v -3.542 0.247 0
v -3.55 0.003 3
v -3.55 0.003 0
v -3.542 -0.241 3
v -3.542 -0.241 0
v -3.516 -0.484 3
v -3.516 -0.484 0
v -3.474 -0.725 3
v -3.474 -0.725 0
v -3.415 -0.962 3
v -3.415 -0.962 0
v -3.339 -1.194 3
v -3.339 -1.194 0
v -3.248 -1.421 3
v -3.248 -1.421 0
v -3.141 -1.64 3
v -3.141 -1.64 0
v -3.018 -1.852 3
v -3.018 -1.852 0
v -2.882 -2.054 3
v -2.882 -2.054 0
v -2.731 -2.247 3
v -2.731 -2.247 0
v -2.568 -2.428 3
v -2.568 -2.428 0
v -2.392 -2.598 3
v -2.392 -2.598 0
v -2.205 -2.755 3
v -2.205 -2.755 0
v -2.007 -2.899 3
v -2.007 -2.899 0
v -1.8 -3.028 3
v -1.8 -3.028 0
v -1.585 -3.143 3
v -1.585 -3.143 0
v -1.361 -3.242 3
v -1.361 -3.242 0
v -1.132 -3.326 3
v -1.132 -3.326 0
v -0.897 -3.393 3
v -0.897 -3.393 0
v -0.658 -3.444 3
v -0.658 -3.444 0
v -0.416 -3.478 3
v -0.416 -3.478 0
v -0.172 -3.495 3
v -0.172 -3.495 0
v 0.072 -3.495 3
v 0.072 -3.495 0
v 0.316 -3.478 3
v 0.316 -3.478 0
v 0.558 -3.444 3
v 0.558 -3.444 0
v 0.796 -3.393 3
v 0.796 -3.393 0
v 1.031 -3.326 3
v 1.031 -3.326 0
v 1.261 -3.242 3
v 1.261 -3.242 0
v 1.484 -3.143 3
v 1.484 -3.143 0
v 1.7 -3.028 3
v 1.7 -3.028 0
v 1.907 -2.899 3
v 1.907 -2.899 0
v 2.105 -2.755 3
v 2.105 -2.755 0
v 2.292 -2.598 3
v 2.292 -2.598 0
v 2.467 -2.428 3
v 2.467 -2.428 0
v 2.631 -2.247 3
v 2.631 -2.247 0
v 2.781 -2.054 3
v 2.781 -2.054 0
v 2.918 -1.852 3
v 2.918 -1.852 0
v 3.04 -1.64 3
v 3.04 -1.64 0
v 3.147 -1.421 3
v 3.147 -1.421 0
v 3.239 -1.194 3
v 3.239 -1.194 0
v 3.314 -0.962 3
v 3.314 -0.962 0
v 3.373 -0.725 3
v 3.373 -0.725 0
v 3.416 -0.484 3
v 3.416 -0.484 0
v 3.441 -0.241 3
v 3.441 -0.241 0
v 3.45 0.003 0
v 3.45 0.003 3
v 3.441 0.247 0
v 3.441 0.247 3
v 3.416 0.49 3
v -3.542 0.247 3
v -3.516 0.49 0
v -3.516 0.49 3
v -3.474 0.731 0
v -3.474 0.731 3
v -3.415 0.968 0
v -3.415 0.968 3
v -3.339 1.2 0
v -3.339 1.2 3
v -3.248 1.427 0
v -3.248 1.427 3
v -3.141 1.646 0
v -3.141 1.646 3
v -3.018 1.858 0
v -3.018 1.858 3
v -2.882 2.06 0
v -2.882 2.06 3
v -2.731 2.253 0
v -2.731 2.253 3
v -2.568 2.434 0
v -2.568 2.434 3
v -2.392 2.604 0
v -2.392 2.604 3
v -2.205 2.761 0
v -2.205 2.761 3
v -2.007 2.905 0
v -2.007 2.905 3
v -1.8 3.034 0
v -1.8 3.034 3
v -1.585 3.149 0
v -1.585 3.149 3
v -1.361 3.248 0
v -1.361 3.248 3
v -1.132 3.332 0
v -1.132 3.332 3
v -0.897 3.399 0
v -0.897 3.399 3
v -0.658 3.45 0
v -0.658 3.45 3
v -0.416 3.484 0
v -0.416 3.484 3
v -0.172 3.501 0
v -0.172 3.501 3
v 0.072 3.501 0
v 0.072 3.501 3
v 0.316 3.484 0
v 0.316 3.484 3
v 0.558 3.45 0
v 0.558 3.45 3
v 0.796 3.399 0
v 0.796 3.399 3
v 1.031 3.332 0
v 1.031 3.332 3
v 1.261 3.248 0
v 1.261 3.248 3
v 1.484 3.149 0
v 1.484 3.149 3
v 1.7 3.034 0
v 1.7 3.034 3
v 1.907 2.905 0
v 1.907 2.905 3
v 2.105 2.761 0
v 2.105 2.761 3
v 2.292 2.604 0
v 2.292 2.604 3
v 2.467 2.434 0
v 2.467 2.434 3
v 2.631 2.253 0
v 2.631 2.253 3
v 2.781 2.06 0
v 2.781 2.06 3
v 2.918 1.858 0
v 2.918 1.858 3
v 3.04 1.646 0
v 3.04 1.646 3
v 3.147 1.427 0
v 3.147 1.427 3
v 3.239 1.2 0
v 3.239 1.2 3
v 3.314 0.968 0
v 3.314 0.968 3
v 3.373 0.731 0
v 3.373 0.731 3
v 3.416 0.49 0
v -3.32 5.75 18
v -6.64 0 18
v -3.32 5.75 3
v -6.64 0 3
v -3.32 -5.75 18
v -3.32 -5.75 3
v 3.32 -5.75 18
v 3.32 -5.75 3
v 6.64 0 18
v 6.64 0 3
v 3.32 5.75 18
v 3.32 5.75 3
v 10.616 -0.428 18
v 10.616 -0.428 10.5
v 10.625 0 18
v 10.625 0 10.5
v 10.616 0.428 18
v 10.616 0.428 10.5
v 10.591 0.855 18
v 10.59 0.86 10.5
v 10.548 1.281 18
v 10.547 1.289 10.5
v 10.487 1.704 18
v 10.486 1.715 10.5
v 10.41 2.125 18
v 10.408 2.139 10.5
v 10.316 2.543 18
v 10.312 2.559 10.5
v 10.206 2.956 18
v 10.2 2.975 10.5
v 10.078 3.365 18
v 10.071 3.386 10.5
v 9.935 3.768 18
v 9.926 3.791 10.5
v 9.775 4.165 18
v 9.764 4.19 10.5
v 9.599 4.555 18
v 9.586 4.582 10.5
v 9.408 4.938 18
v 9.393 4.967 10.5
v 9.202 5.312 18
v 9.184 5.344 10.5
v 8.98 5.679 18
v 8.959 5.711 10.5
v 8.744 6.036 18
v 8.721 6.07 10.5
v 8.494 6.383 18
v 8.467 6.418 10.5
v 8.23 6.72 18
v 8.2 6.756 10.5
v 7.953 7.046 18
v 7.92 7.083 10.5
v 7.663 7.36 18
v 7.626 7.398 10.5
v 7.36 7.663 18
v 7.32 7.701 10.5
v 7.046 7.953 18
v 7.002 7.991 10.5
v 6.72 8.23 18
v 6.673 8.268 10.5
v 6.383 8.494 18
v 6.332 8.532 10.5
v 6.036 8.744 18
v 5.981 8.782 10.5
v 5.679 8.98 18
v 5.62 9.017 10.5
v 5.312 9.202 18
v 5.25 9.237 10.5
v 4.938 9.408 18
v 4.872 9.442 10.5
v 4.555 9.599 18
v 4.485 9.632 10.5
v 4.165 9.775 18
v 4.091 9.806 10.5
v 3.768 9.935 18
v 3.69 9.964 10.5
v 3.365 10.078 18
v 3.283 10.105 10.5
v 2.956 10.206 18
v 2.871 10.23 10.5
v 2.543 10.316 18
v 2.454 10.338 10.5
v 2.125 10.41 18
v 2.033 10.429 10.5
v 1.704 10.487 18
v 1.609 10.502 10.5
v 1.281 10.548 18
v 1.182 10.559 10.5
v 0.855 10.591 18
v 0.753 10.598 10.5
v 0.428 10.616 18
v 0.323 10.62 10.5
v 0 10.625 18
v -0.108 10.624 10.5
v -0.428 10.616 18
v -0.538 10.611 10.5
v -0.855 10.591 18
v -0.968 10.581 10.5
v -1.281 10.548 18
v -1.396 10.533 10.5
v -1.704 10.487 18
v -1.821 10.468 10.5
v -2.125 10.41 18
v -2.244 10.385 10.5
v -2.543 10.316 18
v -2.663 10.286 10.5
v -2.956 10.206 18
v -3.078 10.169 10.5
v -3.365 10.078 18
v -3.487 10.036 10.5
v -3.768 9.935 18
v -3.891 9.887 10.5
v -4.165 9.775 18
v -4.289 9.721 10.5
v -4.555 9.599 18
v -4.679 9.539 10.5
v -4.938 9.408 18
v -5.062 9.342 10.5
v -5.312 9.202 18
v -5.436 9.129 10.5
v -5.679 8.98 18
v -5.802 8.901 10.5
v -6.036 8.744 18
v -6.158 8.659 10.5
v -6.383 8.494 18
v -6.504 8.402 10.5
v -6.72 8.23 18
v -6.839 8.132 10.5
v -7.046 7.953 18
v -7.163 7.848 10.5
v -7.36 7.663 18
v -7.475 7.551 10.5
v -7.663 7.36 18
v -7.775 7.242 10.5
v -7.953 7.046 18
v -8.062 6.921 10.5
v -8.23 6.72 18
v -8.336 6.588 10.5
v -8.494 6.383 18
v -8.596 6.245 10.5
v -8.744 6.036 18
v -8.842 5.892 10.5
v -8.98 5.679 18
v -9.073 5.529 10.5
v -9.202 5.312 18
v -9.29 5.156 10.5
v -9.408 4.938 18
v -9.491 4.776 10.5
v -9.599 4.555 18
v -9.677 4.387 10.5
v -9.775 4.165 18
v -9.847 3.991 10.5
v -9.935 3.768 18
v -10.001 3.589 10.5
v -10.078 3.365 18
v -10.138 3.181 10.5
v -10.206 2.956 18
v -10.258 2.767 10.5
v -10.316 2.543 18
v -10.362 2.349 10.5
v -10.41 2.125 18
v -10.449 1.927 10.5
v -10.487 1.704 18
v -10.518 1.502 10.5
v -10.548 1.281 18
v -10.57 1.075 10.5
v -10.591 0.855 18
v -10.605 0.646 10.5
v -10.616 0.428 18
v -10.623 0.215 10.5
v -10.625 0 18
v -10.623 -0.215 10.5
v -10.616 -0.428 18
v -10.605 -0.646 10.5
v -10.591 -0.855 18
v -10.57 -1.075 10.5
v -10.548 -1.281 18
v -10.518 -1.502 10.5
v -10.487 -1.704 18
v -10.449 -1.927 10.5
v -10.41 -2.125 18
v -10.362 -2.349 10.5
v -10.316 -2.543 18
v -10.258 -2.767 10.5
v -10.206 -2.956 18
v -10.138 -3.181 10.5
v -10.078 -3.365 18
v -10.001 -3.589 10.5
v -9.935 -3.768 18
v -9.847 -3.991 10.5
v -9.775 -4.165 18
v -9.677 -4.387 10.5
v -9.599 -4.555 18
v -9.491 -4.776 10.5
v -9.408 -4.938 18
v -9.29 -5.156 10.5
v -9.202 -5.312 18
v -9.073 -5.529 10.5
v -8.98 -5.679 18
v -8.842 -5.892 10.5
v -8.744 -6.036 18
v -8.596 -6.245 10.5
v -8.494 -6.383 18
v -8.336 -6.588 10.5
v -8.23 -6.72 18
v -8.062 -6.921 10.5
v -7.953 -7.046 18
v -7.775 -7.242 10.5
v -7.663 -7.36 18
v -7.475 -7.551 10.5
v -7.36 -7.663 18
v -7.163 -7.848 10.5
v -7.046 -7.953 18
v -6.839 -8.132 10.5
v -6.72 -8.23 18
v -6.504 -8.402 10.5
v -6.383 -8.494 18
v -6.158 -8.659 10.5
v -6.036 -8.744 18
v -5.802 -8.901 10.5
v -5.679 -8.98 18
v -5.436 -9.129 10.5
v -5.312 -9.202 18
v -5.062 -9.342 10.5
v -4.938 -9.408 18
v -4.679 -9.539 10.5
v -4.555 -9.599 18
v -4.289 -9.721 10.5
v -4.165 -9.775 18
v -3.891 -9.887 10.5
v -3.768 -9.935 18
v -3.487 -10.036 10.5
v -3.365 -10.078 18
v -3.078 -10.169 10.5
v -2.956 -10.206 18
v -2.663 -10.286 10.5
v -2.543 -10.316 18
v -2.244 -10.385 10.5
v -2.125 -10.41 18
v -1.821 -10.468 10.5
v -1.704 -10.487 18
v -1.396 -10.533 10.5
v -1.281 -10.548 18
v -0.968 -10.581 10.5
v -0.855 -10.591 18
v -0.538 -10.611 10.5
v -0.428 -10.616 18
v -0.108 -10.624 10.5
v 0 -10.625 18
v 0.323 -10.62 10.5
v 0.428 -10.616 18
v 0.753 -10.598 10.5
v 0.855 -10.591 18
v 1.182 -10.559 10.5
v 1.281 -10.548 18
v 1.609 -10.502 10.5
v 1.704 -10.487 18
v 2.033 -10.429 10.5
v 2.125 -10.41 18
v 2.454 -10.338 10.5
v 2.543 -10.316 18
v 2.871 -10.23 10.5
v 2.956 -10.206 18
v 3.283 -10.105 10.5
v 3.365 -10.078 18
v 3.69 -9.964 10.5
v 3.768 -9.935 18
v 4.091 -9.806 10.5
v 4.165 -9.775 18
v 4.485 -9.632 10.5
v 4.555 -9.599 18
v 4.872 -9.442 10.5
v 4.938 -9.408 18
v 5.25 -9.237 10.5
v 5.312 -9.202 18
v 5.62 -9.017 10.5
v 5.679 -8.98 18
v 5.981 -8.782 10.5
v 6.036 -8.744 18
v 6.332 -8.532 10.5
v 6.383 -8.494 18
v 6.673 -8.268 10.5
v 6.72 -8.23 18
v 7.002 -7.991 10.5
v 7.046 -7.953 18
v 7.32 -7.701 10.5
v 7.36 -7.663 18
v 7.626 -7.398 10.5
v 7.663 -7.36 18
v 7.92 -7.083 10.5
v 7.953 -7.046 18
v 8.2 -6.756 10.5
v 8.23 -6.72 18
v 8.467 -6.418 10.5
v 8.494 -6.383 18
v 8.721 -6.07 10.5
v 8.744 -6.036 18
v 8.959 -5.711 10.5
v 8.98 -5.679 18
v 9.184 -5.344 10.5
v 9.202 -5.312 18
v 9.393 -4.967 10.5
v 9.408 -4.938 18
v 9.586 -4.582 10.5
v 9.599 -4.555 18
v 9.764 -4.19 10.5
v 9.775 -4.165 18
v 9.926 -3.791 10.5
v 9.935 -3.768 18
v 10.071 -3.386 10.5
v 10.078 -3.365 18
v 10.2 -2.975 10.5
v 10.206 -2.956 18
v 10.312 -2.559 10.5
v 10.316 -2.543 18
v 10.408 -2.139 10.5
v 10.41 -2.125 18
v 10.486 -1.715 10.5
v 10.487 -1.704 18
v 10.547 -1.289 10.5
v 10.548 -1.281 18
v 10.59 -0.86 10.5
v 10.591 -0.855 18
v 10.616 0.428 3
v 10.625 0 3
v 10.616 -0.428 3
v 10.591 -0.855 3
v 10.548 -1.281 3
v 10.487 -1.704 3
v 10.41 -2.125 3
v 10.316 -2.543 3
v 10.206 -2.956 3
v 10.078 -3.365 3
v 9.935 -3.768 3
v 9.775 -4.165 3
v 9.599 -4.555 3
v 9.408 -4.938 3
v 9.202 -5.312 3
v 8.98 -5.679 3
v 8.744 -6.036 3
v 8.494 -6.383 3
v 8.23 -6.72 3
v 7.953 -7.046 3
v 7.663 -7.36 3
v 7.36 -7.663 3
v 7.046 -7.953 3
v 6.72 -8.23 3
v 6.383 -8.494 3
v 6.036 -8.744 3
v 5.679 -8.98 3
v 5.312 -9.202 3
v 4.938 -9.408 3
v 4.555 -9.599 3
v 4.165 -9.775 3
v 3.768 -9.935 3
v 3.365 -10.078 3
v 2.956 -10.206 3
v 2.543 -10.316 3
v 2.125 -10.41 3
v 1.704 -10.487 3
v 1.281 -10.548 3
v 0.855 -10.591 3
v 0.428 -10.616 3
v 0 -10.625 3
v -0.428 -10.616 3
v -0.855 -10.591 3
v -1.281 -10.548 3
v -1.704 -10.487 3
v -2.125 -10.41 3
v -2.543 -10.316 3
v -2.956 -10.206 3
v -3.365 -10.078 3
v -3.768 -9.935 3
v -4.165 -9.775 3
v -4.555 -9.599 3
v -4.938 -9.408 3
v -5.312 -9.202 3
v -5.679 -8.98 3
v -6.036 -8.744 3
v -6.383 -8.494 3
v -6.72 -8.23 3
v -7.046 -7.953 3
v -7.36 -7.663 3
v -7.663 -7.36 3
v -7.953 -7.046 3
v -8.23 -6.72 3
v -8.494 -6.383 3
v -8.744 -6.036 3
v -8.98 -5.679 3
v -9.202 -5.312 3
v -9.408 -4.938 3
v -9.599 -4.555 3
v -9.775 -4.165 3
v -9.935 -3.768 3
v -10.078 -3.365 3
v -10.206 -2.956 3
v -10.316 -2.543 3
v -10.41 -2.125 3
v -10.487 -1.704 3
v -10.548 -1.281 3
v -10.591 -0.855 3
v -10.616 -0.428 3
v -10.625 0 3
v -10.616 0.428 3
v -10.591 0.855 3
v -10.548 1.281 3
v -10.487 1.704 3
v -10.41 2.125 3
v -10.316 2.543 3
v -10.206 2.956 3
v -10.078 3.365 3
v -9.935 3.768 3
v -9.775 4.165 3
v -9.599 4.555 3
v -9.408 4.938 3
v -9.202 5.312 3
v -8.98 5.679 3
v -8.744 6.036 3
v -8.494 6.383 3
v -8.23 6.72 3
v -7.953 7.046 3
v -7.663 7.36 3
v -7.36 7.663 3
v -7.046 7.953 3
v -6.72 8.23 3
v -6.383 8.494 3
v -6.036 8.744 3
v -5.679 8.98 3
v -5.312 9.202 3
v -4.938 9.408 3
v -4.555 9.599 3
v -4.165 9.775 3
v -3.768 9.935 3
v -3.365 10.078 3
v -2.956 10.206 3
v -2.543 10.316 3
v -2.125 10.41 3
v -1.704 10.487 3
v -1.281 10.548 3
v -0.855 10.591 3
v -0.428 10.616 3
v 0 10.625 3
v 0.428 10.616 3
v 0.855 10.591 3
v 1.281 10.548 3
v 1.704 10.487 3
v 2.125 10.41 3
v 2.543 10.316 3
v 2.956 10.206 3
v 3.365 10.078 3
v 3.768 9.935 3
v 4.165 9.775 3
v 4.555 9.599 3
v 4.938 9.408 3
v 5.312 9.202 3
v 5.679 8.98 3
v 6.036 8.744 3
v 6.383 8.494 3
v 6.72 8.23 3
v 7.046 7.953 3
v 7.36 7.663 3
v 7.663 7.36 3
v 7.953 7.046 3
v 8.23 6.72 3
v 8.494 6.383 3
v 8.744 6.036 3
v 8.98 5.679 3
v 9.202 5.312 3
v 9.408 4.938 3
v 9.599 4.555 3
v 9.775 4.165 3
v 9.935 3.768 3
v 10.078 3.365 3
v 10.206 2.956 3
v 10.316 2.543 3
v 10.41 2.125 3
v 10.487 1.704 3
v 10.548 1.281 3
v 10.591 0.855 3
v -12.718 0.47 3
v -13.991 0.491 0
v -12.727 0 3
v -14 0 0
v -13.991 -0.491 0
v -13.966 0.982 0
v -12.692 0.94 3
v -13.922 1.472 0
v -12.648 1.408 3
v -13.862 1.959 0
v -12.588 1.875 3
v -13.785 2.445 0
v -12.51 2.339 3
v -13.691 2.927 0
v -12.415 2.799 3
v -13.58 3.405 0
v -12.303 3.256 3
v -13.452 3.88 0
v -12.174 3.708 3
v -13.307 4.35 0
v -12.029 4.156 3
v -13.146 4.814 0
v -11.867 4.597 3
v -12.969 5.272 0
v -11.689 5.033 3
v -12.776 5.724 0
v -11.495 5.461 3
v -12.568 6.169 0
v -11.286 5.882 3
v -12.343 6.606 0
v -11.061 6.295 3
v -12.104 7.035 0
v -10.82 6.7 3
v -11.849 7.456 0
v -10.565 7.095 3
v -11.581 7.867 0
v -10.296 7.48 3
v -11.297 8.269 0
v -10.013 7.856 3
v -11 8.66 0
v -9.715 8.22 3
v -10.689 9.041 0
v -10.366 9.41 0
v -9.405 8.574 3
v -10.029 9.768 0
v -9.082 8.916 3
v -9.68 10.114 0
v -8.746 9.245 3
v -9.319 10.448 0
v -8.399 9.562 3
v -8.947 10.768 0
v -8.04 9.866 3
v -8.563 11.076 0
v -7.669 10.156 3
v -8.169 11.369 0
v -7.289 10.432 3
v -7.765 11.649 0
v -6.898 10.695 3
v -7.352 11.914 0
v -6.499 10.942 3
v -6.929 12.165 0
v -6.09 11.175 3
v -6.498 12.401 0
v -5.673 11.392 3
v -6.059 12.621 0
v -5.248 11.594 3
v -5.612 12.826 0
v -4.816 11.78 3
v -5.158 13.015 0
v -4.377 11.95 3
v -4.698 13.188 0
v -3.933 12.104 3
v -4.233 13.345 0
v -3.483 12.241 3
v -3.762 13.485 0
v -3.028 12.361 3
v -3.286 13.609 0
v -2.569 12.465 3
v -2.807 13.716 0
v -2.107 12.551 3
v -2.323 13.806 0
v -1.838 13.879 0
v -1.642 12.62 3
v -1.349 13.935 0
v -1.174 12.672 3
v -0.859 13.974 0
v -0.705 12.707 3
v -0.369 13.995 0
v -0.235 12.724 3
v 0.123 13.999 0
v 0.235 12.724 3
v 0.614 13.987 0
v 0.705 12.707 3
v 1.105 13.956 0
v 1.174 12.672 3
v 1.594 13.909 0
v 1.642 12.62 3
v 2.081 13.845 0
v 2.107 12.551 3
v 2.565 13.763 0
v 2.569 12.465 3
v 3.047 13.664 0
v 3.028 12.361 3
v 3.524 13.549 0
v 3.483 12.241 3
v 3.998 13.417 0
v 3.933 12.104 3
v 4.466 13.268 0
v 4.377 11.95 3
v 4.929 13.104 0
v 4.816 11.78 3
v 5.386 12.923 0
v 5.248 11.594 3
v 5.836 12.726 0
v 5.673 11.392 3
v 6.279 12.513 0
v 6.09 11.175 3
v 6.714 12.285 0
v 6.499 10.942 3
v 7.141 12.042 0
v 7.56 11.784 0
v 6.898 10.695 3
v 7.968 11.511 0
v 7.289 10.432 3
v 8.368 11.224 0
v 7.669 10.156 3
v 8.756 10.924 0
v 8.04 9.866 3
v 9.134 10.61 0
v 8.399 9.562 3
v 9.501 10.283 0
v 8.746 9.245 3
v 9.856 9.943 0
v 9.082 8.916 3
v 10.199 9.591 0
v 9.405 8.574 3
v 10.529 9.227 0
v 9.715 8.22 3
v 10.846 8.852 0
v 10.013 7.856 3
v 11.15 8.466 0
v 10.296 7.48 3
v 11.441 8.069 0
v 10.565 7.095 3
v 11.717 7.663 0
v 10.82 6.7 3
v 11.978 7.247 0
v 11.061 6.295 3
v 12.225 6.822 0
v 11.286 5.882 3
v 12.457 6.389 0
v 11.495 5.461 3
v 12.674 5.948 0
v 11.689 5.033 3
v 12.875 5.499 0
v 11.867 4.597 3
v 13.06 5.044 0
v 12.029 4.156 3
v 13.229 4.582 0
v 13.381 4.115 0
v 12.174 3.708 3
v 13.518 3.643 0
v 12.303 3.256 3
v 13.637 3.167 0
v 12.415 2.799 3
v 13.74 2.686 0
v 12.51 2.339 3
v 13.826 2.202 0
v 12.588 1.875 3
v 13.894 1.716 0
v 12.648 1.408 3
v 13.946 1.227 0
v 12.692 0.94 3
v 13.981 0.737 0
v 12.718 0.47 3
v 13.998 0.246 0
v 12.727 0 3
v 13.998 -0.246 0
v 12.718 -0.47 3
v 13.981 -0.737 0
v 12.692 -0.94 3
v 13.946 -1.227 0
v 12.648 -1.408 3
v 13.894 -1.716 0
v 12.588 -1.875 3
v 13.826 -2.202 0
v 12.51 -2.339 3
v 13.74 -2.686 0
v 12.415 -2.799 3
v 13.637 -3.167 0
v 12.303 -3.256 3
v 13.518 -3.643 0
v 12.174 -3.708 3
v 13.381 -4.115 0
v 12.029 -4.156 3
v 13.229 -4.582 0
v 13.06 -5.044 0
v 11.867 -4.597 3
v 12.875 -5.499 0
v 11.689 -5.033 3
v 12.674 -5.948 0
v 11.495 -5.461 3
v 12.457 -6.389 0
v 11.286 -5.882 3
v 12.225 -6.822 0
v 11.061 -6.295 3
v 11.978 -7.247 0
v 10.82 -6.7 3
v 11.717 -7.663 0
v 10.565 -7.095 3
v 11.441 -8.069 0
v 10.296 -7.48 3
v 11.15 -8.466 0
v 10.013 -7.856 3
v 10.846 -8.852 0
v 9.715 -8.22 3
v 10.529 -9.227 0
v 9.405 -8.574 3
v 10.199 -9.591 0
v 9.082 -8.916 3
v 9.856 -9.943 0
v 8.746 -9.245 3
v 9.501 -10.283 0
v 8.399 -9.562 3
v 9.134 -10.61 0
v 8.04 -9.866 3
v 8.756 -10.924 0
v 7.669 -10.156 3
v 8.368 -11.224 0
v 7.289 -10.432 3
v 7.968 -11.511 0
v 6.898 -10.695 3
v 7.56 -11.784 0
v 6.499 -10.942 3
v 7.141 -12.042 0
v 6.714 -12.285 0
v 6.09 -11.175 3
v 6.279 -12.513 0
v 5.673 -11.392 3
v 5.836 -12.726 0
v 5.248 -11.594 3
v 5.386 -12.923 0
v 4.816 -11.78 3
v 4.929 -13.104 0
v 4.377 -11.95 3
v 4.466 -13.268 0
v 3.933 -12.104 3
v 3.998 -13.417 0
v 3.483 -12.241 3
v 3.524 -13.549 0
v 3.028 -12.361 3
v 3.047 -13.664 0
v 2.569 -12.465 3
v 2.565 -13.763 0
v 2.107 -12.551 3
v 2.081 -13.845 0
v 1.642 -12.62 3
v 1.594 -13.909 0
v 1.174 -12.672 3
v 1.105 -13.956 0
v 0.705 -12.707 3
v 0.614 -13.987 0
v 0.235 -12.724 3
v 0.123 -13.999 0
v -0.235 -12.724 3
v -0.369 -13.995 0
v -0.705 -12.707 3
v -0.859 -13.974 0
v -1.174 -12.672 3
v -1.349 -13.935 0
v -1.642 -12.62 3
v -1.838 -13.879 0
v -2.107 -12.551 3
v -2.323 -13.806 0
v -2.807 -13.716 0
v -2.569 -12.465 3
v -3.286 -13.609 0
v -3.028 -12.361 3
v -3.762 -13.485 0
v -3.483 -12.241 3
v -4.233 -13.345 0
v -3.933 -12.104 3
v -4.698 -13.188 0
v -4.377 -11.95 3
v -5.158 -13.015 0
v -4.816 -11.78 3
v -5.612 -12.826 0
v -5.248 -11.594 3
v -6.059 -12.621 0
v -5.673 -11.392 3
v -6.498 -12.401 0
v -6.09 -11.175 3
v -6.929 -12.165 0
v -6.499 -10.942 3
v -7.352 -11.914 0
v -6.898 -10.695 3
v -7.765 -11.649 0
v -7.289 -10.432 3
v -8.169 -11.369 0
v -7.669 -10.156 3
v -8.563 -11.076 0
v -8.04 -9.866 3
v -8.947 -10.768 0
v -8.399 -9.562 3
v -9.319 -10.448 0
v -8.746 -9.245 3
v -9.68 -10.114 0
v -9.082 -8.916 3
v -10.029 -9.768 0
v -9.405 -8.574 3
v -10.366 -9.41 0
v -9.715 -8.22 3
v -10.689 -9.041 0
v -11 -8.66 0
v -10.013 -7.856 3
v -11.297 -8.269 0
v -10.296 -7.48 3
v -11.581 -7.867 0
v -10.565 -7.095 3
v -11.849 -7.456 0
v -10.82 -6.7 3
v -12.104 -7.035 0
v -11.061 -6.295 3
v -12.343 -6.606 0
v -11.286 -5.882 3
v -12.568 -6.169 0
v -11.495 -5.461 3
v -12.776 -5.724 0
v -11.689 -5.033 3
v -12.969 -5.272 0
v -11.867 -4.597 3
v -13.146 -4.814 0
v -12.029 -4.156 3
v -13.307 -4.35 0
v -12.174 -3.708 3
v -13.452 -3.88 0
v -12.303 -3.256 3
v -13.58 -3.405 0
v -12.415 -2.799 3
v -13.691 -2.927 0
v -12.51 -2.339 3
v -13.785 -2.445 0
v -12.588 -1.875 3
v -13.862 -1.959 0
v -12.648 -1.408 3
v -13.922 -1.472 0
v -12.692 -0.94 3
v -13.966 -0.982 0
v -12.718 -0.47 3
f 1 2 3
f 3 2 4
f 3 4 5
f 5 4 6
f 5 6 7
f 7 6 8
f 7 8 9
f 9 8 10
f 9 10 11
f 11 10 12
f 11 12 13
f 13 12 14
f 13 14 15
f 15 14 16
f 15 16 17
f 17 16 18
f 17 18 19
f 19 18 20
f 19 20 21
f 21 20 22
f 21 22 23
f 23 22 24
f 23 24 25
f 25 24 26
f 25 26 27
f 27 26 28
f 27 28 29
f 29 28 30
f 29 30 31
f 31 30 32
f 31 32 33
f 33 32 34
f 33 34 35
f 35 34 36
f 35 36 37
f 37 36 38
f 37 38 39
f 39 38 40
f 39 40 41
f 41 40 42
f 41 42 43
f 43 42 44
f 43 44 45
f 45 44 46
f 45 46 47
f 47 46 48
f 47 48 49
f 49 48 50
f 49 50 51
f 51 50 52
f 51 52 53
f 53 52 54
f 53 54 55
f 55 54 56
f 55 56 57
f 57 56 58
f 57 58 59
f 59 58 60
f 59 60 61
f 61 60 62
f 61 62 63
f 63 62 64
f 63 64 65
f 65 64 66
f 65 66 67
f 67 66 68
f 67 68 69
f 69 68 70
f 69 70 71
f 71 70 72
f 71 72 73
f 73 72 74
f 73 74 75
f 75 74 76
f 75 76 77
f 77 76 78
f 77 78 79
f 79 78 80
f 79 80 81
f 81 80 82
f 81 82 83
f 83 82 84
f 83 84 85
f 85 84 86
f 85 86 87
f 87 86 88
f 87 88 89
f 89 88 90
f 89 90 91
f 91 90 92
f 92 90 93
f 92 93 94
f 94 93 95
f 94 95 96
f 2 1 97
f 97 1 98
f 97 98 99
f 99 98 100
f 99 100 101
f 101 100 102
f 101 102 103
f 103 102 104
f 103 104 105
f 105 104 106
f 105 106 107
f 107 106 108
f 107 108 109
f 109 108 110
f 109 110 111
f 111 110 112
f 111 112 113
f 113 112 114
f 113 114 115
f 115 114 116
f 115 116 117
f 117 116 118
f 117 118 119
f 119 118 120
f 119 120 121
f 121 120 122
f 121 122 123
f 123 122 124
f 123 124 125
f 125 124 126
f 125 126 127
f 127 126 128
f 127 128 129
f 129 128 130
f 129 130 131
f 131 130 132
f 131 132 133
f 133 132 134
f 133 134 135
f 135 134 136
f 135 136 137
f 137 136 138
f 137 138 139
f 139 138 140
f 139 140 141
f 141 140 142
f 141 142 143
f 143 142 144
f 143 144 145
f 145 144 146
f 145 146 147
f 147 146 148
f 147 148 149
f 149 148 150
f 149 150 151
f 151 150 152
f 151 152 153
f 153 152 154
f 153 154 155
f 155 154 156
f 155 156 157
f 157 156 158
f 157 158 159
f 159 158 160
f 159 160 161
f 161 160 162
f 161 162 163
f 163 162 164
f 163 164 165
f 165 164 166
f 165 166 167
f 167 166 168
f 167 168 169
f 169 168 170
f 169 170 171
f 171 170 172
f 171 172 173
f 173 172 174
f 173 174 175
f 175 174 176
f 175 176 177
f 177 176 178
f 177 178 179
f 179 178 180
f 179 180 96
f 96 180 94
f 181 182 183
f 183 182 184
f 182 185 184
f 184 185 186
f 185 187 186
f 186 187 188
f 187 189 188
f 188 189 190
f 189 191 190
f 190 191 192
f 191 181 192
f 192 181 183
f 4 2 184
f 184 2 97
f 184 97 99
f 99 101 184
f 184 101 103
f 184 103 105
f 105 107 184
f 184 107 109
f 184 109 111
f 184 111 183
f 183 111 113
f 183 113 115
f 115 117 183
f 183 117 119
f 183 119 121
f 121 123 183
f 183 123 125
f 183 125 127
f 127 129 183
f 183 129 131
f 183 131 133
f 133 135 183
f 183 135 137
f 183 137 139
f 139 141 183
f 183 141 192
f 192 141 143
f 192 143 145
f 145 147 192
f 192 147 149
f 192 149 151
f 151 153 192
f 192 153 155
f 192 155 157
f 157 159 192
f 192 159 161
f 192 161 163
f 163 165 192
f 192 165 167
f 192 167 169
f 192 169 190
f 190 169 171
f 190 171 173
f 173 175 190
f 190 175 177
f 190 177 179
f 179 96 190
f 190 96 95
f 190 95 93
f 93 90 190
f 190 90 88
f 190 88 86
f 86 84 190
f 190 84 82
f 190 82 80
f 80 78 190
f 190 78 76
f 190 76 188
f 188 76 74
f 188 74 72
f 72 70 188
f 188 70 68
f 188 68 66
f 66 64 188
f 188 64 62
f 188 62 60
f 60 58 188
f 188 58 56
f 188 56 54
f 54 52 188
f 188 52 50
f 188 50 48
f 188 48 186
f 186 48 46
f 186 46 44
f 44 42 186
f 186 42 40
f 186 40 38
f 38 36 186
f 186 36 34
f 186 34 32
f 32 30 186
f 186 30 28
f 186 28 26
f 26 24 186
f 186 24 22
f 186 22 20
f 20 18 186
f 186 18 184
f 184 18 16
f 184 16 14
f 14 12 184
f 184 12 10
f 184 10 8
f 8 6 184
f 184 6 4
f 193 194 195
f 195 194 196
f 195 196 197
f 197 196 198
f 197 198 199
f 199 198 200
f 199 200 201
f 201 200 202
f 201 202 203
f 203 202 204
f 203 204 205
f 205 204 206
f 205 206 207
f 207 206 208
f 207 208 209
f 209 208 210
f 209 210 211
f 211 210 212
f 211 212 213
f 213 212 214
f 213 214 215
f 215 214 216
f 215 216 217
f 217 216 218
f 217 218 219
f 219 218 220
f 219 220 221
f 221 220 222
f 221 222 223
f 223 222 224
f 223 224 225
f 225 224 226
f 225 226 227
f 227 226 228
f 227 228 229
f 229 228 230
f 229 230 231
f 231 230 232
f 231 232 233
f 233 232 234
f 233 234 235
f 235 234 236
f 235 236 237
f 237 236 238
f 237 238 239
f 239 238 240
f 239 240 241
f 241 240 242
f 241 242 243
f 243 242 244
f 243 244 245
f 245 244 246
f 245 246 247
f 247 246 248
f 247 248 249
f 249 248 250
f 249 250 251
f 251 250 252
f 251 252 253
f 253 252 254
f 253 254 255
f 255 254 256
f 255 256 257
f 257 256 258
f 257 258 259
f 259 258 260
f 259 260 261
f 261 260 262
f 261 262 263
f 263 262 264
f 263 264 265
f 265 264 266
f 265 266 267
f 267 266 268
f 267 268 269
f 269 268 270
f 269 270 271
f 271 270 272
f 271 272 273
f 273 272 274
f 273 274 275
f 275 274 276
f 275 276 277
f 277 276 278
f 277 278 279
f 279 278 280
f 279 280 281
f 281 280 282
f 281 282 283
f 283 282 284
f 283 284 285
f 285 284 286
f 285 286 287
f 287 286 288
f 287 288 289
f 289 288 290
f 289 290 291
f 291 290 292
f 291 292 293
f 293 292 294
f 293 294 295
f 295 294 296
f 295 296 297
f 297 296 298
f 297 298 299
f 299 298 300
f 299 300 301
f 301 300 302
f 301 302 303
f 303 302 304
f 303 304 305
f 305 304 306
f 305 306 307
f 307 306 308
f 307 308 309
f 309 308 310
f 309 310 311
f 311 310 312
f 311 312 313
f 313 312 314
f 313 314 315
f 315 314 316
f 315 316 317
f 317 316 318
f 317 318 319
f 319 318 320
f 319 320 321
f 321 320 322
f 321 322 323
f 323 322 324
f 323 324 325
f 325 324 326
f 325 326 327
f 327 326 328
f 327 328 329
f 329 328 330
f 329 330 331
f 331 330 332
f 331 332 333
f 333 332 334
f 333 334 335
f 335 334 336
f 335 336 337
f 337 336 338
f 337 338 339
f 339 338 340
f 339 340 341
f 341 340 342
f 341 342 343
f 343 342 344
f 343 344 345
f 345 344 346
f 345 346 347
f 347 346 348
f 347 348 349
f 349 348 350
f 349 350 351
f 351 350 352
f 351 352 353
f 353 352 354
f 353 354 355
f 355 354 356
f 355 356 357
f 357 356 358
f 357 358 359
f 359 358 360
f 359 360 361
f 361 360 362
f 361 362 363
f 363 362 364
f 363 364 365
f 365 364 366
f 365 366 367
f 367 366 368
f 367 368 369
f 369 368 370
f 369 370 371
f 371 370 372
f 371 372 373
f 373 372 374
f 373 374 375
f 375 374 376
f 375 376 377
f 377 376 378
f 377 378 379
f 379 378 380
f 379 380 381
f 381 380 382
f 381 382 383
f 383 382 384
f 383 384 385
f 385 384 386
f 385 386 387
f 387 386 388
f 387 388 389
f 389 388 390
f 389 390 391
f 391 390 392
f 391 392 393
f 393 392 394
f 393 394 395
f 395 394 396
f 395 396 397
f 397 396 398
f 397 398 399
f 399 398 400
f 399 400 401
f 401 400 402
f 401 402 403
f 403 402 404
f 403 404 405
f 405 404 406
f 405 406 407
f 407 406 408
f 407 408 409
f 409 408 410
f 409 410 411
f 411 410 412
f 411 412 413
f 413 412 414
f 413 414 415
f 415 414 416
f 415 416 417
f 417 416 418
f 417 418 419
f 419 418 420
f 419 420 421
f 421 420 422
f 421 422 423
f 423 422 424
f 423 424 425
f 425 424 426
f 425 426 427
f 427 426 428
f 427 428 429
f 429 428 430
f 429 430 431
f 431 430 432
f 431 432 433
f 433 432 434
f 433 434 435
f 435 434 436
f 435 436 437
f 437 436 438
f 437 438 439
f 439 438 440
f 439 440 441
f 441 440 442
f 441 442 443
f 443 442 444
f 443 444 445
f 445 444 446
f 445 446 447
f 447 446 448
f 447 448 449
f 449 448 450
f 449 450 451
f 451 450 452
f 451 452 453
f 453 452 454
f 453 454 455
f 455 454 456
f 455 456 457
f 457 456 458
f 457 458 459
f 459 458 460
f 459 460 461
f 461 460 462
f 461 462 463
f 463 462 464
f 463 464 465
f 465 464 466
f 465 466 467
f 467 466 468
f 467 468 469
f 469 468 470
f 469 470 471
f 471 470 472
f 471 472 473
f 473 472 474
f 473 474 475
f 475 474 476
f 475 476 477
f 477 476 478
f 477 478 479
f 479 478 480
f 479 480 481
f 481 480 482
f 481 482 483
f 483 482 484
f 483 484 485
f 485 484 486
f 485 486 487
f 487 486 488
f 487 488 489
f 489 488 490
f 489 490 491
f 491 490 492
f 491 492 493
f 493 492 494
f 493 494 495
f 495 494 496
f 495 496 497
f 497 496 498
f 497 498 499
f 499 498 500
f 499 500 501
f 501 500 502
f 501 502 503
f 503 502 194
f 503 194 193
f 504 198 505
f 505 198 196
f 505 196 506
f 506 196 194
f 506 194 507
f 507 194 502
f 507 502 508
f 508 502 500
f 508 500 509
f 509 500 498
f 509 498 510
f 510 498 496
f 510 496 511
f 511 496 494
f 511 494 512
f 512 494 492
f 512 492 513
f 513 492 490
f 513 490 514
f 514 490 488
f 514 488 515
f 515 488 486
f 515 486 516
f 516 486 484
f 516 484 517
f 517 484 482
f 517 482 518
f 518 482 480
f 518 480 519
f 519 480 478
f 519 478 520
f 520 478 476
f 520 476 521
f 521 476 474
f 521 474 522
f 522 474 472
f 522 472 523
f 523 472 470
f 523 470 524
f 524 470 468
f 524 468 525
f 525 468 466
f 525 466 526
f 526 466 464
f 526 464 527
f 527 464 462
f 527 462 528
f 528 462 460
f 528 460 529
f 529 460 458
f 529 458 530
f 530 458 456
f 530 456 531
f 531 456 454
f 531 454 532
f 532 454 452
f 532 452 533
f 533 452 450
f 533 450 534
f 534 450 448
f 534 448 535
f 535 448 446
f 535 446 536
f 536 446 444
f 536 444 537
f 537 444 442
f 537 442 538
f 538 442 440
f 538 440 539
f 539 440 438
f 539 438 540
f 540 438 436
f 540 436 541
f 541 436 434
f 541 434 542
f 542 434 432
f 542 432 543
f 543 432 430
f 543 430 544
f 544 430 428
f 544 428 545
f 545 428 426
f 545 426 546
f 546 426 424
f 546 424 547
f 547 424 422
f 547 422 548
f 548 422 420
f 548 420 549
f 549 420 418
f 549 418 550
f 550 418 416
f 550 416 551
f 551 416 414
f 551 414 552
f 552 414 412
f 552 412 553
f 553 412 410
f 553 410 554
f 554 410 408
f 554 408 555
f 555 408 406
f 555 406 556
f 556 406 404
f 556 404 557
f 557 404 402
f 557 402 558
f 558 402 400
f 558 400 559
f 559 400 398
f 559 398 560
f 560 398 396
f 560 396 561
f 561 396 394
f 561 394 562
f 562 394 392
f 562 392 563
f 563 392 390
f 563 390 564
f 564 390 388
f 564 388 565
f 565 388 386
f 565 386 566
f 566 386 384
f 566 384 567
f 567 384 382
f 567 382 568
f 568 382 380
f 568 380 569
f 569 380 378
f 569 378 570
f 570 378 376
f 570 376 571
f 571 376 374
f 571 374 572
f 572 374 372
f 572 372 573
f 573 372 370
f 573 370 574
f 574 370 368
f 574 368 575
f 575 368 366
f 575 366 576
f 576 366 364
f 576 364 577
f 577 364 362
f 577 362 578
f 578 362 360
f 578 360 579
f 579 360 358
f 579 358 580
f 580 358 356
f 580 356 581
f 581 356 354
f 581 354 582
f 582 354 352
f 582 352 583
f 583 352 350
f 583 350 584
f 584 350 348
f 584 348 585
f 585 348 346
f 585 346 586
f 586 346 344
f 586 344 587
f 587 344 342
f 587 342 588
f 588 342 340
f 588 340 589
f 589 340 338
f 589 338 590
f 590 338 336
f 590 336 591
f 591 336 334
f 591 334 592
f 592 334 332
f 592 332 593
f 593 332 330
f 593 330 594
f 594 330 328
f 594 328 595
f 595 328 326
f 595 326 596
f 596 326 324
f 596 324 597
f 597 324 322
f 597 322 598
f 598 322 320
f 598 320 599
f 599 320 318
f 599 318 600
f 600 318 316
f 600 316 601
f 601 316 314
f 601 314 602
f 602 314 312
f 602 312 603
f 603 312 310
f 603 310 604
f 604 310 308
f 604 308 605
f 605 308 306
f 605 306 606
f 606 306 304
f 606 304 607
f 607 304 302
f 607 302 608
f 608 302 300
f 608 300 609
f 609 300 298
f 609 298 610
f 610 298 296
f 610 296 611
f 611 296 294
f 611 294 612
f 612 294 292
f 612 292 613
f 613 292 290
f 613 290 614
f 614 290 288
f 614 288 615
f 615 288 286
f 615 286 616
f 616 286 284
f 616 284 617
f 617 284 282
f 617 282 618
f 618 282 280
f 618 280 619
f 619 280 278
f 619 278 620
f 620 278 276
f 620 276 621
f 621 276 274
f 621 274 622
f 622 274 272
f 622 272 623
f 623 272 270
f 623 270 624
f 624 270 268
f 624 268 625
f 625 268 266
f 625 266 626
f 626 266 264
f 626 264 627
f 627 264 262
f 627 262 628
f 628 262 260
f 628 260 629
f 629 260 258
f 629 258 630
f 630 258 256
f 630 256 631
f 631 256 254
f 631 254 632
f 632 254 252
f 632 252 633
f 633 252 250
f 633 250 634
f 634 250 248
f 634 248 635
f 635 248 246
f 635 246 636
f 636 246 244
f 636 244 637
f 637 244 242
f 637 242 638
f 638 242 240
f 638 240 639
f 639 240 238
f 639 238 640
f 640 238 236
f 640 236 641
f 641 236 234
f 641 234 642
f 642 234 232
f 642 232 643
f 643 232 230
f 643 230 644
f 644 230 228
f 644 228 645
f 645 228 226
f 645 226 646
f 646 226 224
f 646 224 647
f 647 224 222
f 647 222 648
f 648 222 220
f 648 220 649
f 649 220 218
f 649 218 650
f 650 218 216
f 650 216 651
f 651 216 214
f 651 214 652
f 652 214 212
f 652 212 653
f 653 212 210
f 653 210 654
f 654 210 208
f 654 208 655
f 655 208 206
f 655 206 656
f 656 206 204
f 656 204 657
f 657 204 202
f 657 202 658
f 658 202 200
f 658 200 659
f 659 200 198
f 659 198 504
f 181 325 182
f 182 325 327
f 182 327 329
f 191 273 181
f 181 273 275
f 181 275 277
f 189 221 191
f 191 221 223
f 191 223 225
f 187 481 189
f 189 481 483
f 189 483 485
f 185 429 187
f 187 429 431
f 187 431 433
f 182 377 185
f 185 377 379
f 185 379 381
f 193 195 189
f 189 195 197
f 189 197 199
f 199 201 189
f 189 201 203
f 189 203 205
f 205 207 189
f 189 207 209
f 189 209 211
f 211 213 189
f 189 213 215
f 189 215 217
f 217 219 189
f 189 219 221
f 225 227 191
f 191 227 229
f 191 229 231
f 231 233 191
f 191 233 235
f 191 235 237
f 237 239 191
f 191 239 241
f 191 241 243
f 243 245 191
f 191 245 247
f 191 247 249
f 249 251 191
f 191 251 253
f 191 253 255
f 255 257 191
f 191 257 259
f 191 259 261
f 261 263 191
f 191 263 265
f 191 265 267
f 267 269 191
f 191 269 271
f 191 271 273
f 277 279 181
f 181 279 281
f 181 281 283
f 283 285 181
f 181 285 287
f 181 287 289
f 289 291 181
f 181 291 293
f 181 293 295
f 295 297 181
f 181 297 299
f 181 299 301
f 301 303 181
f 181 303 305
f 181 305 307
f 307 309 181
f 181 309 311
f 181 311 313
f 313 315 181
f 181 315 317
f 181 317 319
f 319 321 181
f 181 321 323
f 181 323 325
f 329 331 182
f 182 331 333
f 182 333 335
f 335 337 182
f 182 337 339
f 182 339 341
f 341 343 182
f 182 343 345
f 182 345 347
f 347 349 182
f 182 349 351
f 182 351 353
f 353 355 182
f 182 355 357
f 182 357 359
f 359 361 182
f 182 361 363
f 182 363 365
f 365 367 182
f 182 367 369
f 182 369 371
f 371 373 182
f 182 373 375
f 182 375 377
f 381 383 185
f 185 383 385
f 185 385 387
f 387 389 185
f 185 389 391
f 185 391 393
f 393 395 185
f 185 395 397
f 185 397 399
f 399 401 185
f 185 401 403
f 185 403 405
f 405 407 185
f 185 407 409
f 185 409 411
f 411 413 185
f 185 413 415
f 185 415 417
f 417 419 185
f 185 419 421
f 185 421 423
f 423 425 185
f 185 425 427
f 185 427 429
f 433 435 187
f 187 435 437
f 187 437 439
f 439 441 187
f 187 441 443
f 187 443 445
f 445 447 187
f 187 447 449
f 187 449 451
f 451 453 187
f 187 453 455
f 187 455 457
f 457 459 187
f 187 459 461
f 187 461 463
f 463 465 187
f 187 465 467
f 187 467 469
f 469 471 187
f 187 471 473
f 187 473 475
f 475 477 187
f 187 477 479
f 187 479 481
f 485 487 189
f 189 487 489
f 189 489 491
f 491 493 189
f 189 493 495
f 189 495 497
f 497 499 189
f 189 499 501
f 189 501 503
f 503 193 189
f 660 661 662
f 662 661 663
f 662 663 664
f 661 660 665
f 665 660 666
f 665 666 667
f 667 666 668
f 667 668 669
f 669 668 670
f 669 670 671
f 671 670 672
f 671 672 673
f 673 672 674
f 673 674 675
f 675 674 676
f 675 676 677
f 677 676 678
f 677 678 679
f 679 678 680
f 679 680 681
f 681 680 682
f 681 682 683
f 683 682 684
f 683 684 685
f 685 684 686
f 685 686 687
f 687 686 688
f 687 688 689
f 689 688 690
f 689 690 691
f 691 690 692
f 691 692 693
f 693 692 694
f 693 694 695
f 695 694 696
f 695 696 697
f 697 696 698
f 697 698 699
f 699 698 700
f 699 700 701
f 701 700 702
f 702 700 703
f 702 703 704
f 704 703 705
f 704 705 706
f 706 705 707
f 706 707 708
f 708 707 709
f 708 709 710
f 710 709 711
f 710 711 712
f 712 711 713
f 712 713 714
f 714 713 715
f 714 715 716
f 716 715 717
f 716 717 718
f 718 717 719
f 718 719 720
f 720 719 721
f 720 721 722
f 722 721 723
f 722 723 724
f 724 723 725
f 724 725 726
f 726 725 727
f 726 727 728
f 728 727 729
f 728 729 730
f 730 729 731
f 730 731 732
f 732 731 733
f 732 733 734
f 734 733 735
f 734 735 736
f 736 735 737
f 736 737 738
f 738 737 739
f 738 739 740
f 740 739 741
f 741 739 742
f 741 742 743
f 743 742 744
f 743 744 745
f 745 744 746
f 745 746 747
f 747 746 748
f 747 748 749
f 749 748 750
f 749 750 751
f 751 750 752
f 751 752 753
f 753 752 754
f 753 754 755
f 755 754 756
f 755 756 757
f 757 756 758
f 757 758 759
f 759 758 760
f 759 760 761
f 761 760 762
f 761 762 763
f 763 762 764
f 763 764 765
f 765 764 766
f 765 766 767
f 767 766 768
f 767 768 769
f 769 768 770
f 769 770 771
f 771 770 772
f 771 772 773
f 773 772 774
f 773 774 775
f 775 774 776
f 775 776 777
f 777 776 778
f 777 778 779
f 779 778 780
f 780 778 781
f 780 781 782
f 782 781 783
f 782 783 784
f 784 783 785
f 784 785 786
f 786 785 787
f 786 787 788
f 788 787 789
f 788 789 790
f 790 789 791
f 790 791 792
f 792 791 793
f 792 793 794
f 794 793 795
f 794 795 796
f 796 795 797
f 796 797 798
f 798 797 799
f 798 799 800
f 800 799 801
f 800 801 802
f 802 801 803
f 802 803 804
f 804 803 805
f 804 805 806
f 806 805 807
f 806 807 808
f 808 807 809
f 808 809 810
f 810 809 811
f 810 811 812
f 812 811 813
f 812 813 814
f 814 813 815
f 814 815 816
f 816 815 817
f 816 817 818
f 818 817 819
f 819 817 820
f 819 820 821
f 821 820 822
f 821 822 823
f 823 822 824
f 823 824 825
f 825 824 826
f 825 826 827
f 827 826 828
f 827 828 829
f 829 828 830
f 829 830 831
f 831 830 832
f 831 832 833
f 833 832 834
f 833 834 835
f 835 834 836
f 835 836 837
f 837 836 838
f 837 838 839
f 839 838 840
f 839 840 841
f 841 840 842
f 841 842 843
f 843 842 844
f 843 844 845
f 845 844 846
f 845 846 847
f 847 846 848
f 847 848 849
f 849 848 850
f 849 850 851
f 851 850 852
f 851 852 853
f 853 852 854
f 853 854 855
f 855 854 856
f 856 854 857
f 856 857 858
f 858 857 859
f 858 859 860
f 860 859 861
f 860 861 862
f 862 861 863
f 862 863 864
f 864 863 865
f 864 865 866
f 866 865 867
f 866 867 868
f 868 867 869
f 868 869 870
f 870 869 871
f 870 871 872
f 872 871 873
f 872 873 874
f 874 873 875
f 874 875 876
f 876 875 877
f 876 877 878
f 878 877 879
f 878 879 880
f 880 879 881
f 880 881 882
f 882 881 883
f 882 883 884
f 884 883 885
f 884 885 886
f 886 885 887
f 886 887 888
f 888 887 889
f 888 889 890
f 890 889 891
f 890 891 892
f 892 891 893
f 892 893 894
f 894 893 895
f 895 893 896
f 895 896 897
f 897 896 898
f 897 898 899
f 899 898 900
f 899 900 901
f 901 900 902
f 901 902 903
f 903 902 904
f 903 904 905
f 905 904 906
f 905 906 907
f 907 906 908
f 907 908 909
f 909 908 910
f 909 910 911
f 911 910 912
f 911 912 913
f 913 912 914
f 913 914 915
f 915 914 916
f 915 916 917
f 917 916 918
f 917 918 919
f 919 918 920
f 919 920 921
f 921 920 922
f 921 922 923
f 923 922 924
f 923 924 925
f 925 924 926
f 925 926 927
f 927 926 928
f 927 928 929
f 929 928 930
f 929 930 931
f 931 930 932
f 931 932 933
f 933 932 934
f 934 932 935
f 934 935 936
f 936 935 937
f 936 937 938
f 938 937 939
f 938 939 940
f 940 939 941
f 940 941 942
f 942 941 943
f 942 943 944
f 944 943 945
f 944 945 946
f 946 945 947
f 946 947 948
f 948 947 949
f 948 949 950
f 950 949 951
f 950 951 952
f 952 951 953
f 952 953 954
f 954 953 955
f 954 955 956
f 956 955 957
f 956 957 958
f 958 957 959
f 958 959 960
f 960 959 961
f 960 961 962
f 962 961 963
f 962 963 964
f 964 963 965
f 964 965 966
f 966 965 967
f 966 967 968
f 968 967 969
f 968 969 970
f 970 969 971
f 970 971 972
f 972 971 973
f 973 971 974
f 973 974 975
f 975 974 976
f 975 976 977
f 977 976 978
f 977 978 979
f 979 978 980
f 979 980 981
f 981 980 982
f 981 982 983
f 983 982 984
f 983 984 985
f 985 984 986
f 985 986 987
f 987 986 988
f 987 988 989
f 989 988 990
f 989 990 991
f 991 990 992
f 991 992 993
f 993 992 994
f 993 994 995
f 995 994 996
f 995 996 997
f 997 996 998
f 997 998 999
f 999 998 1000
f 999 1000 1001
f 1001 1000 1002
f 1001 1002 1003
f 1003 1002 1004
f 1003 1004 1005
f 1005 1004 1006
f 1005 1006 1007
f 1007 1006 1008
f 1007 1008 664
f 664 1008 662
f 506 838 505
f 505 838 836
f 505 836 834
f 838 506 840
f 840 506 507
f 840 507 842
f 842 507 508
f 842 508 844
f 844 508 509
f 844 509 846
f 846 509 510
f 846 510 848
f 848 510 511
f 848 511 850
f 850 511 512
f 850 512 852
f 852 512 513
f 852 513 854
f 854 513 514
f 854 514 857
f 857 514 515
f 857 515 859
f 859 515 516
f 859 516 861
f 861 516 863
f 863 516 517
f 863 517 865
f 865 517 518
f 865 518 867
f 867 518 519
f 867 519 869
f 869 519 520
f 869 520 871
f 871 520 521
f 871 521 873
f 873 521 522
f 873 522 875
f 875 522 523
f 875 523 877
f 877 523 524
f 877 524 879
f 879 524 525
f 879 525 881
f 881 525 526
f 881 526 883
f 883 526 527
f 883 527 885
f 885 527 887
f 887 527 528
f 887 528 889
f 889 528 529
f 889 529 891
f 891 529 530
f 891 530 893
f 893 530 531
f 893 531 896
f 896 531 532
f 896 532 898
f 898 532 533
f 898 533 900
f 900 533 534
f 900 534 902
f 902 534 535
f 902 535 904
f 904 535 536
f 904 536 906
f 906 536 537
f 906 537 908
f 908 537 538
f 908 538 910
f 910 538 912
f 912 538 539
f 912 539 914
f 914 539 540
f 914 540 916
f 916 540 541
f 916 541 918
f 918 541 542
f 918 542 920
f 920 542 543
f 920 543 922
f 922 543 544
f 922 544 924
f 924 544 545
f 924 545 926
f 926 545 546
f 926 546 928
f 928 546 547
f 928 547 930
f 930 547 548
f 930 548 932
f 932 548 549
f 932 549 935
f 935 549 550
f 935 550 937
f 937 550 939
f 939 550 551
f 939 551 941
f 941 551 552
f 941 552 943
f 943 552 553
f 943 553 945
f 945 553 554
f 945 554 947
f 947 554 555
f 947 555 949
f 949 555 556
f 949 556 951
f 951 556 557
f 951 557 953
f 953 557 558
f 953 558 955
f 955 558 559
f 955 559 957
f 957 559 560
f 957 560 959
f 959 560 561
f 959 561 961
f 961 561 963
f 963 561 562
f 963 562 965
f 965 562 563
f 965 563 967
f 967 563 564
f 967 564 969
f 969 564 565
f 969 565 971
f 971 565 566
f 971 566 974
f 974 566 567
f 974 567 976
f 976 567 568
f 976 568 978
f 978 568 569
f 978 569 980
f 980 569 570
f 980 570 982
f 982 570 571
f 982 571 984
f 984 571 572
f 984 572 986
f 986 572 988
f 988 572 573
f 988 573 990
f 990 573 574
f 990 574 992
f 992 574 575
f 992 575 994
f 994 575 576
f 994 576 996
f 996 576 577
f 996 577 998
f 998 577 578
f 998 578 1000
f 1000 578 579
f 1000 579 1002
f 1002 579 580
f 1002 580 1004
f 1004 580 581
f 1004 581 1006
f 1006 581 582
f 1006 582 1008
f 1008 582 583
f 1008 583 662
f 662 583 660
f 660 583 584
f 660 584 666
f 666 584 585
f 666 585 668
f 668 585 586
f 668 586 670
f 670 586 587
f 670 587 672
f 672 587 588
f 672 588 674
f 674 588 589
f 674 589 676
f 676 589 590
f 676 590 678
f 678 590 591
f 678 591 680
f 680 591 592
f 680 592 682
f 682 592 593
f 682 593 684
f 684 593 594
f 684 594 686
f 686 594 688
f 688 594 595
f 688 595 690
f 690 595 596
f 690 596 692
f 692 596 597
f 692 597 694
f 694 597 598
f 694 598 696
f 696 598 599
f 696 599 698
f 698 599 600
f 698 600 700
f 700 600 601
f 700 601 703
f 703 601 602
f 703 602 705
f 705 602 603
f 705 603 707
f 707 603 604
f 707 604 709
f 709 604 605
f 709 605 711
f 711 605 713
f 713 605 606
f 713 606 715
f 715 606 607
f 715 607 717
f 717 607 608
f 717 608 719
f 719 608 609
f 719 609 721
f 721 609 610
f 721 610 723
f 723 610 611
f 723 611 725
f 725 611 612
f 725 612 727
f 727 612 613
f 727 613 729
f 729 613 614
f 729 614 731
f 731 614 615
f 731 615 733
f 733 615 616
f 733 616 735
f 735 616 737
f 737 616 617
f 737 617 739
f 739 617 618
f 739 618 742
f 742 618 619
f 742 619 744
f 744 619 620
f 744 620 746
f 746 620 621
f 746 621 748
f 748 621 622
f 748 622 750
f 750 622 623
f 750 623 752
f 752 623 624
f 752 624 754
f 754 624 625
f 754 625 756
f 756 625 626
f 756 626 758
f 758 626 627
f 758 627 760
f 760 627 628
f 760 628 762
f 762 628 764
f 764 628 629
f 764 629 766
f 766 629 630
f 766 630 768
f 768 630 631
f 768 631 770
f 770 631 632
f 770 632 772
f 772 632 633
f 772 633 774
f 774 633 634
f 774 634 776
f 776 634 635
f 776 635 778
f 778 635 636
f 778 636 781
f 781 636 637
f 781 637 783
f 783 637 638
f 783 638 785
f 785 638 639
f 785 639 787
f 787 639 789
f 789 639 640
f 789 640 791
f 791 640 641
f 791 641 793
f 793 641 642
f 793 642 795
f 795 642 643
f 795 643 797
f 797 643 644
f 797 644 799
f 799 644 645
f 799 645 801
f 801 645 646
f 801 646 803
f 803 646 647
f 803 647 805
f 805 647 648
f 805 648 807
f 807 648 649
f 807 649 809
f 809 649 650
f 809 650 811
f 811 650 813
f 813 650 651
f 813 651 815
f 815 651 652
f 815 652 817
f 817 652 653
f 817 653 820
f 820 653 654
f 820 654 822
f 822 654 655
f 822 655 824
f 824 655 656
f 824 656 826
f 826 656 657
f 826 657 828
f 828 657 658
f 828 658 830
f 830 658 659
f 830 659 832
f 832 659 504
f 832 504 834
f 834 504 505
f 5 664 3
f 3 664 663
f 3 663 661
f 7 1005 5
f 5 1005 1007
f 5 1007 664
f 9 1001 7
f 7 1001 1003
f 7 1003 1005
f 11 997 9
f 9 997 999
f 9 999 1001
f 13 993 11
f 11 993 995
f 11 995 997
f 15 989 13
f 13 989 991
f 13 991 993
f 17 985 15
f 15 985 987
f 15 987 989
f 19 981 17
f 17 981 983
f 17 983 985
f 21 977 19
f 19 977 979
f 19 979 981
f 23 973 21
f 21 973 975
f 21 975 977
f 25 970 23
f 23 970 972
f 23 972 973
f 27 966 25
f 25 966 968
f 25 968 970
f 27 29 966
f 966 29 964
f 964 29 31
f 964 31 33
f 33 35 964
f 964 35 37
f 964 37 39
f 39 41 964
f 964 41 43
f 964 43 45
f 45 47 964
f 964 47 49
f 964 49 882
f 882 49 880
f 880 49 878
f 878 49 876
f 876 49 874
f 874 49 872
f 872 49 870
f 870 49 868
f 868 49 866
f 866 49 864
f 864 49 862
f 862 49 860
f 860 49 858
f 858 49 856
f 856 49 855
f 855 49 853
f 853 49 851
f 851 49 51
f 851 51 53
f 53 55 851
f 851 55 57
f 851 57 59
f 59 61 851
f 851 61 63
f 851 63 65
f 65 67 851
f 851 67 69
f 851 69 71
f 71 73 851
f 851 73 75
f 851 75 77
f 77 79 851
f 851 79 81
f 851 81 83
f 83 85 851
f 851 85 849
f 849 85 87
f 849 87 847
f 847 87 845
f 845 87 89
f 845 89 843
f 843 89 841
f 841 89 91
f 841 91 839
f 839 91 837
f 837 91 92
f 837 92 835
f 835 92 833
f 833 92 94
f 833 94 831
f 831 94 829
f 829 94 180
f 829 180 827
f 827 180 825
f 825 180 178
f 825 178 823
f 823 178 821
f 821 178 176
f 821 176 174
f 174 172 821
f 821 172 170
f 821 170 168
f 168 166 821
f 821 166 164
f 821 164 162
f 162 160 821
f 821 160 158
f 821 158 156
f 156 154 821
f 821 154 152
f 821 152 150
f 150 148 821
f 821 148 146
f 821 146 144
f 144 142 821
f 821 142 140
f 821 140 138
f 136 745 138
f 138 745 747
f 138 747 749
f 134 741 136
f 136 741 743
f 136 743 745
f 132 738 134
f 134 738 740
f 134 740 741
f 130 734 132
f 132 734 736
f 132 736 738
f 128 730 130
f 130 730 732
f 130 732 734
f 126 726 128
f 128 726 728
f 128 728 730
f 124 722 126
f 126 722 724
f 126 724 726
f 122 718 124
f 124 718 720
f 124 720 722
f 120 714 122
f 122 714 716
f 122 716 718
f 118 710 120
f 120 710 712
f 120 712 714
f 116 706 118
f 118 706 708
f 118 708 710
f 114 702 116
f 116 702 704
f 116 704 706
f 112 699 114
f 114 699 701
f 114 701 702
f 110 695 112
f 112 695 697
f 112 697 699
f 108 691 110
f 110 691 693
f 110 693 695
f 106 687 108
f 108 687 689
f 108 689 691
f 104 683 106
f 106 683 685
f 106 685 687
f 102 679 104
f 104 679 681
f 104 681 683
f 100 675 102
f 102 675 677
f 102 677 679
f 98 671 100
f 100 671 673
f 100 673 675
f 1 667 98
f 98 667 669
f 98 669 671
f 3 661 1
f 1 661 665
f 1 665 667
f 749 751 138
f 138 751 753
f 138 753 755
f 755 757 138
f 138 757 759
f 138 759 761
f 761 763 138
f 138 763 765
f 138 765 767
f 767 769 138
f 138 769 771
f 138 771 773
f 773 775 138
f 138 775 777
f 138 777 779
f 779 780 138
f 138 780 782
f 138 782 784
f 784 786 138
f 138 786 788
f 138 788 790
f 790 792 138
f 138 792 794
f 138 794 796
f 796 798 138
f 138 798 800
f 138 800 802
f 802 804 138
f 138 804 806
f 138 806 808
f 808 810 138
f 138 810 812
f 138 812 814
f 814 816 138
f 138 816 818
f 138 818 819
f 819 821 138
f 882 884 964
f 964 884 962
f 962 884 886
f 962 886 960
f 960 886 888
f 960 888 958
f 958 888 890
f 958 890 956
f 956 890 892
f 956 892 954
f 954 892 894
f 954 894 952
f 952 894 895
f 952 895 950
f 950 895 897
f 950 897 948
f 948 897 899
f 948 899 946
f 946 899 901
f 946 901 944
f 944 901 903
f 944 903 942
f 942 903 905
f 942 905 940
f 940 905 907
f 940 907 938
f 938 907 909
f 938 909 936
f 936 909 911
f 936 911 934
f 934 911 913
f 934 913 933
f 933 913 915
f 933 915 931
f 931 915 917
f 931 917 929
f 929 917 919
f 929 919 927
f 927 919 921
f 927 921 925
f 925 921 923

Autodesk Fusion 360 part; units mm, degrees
sketch "Sketch1" plane through (0, 0, 0) normal (0, 0, 1) x (1, 0, 0)
  circle A0 centre (0, 0) radius 14
  dimension "d1" = 28
extrude "Extrude1" add sketch "Sketch1" along normal blind 3 draft -23
sketch "Sketch2" plane through (0, 0, 3) normal (0, 0, 1) x (-1, 0, 0)
  circle A0 centre (0, 0) radius 12.7266
sketch "Sketch3" plane through (0, 0, 3) normal (0, 0, 1) x (-1, 0, 0)
sketch "Sketch4" plane through (0, 0, 3) normal (0, 0, 1) x (-1, 0, 0)
  circle A0 centre (0, 0) radius 10.625
  dimension "d5" = 21.25
extrude "Extrude2" add sketch "Sketch4" along normal blind 15
sketch "Sketch5" plane through (0, 0, 18) normal (0, 0, 1) x (-1, 0, 0)
  circle A0 centre (0, 0) radius 10.625
  line L0 (3.3198, -5.75) -> (6.6395, 0)
  line L1 (6.6395, 0) -> (3.3198, 5.75)
  line L2 (3.3198, 5.75) -> (-3.3198, 5.75)
  line L3 (-3.3198, 5.75) -> (-6.6395, 0)
  line L4 (-6.6395, 0) -> (-3.3198, -5.75)
  line L5 (-3.3198, -5.75) -> (3.3198, -5.75)
  dimension "d8" = 5.75
extrude "Extrude3" cut sketch "Sketch5" against normal blind 15 contours L0 L1 L2 L3 L4 L5
hole "Hole1" at (-0.0502, 0.0031, 0) direction (0, 0, 1) diameter 7 depth 3 tip angle 180
sketch "1/4\" Bolt Hole" plane through (0, 0, 0) normal (0, 0, -1) x (1, 0, 0)
  circle A0 centre (-0.0502, -0.0031) radius 3.5
  circle A1 centre (0, 0) radius 14
sketch "Sketch7" plane through (0, 0, 18) normal (0, 0, 1) x (-1, 0, 0)
sketch "Sketch8" plane through (0, 0, 18) normal (0, 0, 1) x (-1, 0, 0)
